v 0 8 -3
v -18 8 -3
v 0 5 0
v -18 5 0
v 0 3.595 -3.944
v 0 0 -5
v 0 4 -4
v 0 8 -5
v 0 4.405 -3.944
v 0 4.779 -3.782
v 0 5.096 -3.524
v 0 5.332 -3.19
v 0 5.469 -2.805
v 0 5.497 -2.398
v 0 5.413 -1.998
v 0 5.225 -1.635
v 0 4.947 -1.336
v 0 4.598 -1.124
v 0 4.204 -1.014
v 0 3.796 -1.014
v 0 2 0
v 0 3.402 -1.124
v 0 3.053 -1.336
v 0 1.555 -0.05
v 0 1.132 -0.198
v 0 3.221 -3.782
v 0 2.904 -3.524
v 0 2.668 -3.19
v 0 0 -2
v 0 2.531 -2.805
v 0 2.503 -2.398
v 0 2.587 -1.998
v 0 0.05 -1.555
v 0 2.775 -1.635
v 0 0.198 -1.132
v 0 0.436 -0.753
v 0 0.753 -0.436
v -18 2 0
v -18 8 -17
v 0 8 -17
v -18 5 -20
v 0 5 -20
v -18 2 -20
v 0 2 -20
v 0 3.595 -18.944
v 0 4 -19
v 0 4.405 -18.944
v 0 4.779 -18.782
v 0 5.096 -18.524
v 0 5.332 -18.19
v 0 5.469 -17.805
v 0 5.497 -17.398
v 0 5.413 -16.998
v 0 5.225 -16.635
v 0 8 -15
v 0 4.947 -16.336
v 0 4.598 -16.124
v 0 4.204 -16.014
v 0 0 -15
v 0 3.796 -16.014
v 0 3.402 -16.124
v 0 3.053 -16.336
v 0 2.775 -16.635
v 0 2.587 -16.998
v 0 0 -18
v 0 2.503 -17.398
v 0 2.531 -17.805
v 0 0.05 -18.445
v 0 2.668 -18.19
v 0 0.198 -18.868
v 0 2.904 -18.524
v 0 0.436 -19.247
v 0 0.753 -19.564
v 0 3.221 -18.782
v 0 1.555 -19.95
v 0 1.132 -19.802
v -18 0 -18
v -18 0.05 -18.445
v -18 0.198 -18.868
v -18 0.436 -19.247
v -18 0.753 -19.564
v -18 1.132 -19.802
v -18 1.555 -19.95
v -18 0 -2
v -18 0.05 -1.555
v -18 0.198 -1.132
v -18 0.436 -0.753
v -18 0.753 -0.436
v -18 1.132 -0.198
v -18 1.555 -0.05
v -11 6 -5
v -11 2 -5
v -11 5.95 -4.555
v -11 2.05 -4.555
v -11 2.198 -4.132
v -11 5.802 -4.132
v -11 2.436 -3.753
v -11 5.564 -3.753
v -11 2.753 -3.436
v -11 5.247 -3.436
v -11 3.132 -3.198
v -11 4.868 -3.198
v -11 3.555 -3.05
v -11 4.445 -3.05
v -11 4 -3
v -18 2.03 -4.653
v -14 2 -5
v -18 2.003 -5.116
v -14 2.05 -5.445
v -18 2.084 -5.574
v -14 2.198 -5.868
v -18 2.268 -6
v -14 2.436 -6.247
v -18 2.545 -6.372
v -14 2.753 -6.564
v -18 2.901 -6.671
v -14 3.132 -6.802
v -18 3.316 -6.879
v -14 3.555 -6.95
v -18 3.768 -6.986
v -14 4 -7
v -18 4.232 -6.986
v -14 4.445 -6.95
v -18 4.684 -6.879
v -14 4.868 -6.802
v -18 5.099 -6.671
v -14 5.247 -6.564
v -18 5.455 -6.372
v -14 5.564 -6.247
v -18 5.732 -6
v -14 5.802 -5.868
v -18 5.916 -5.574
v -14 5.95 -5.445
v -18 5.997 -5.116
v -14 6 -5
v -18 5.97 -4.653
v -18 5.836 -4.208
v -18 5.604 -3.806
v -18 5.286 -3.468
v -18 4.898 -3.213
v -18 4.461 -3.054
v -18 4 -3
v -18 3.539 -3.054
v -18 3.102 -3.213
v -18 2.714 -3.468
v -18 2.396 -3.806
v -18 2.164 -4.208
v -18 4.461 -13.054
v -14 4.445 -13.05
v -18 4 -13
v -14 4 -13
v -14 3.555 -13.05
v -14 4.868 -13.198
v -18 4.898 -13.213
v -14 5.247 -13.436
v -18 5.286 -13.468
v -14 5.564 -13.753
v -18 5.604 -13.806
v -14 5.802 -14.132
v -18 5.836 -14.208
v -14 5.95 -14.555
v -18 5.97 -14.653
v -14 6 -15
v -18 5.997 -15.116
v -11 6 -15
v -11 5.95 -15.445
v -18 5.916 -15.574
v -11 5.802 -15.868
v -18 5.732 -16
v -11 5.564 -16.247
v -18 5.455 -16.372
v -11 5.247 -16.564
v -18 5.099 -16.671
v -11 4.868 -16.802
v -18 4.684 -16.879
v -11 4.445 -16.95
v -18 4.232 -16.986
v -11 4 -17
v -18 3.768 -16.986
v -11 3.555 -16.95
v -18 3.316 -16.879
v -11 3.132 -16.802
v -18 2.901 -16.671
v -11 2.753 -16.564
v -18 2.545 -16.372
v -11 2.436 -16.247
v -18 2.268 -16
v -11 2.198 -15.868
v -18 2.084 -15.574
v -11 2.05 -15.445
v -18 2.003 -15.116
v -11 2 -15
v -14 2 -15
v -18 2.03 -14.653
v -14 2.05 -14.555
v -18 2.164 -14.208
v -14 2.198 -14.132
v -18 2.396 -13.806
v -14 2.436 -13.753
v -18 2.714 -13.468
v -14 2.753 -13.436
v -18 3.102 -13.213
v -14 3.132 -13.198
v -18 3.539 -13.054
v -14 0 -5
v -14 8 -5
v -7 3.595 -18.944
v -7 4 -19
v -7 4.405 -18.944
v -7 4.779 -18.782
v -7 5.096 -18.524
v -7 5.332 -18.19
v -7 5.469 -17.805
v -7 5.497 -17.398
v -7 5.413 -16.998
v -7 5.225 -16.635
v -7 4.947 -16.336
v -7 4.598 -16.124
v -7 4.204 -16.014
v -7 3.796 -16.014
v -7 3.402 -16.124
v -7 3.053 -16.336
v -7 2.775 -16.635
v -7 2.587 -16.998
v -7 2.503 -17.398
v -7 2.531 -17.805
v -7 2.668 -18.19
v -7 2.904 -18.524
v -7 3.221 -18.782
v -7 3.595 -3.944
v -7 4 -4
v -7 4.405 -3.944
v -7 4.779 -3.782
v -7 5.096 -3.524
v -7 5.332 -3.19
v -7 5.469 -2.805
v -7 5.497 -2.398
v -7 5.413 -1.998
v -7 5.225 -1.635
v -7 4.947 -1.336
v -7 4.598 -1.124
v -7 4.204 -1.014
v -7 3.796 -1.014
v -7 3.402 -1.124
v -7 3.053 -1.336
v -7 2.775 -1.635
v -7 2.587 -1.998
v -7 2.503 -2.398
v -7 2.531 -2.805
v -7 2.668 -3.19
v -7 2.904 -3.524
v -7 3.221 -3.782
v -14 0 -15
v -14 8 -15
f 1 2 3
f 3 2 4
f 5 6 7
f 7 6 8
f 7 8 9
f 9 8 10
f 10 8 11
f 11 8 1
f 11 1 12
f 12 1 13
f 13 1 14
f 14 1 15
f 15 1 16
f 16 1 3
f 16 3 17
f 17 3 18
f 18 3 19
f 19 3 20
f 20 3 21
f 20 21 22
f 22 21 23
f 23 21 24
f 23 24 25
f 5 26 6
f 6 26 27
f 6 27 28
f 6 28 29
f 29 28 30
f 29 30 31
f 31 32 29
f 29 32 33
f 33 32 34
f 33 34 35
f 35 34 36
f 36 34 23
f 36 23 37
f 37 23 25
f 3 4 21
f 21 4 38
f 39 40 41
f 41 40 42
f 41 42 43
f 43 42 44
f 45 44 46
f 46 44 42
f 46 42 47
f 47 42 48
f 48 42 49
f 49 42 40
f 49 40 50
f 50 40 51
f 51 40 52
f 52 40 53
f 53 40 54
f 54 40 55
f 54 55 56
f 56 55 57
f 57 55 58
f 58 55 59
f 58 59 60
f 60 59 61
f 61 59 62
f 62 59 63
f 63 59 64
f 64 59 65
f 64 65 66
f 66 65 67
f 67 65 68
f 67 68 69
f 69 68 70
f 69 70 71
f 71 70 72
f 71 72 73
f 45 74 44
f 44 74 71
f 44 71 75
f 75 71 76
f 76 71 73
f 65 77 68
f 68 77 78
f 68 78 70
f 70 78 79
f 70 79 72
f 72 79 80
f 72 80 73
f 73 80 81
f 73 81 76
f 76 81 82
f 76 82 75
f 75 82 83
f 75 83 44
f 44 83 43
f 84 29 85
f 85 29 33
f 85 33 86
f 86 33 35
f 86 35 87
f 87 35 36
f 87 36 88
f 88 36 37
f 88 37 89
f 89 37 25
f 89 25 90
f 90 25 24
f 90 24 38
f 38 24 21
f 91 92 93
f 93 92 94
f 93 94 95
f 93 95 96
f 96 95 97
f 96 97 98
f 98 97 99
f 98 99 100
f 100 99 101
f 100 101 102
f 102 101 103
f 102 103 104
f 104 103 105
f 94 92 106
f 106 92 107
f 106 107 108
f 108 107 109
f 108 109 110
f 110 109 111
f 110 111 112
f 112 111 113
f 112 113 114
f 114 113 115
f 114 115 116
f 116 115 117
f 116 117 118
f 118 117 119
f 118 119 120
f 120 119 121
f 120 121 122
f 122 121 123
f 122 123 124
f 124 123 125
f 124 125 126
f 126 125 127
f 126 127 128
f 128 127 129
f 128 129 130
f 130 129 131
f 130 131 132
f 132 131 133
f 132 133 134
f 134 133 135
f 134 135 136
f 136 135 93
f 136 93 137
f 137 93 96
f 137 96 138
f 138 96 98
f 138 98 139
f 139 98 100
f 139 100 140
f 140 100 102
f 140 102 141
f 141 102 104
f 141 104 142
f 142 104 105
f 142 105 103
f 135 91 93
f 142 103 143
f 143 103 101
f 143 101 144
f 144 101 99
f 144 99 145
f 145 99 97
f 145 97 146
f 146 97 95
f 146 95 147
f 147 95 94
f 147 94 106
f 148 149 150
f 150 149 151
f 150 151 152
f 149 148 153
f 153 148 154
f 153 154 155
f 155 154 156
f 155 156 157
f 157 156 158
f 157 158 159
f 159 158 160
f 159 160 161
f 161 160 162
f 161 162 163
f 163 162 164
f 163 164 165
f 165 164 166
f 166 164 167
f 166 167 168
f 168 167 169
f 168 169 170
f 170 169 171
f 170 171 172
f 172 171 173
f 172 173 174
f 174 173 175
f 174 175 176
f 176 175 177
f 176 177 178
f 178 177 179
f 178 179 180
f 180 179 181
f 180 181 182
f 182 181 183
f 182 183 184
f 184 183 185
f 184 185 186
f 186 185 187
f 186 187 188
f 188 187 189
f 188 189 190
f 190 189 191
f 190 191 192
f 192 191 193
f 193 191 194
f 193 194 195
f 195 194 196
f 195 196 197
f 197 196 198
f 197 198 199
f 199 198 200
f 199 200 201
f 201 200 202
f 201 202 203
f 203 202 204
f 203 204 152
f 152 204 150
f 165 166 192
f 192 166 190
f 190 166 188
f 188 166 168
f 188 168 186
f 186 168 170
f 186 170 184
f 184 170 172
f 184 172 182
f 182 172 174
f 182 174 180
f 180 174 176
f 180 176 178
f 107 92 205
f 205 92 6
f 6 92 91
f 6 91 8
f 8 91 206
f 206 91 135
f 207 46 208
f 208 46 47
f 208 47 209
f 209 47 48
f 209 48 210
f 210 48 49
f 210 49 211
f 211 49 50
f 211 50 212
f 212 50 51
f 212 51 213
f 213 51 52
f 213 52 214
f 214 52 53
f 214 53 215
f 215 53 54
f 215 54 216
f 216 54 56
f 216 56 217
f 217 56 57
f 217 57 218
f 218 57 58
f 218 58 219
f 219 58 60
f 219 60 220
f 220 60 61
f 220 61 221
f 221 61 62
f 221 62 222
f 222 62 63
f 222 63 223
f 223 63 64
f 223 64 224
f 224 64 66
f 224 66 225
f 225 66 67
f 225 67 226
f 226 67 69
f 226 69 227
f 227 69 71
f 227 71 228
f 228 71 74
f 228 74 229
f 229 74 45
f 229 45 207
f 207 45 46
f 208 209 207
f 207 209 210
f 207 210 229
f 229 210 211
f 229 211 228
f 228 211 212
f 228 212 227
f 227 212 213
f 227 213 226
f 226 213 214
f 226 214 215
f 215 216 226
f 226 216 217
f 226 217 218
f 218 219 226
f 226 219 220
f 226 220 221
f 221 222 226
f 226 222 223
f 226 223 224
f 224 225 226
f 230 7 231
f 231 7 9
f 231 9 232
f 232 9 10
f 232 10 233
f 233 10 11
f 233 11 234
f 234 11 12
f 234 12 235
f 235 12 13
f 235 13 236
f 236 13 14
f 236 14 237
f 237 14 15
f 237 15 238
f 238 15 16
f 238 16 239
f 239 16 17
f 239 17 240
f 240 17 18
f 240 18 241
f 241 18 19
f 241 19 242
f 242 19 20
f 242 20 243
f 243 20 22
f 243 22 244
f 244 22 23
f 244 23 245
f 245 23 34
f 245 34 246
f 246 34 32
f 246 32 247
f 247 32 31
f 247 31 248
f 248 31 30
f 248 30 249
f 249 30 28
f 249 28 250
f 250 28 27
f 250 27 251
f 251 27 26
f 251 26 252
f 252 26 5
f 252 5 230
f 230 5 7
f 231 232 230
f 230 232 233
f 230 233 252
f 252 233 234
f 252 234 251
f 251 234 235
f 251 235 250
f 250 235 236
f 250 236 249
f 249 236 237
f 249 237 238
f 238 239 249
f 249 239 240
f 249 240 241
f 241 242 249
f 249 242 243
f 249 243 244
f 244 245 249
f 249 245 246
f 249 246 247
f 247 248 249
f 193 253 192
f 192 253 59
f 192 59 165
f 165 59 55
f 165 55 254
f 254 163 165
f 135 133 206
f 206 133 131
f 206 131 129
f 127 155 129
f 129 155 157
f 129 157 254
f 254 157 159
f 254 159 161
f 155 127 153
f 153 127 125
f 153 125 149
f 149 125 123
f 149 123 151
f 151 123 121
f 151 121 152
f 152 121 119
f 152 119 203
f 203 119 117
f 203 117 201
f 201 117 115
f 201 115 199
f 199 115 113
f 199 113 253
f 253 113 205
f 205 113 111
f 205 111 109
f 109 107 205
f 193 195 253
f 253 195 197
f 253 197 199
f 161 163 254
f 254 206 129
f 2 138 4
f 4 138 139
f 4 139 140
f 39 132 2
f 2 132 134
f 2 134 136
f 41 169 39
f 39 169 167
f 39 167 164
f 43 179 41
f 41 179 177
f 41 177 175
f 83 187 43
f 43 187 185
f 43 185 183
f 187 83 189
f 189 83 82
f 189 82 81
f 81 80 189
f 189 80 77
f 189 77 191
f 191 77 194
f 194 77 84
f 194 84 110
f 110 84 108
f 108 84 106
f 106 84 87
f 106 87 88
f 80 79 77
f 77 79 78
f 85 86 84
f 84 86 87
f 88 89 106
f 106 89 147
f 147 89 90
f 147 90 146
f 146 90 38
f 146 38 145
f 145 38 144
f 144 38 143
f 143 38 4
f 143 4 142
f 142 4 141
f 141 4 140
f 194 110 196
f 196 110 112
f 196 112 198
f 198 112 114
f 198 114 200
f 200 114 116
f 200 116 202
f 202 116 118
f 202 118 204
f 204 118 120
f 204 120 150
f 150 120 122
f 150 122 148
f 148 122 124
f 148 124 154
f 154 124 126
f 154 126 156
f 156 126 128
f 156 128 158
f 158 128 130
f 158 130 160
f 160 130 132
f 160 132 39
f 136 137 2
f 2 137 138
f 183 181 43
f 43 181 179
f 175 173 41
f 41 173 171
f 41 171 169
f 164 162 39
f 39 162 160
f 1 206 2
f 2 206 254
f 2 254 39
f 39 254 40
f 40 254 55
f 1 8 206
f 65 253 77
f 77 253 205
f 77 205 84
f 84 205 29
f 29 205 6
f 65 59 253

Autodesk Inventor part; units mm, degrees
ref_plane "YZ Plane" through (0, 0, 0) normal (1, 0, 0) x (0, 1, 0)
ref_plane "XZ Plane" through (0, 0, 0) normal (0, 1, 0) x (-1, 0, 0)
ref_plane "XY Plane" through (0, 0, 0) normal (0, 0, 1) x (1, 0, 0)
sketch "Sketch1" plane through (0, 0, 0) normal (0, 1, 0) x (-1, 0, 0)
  line L0 (0, 0) -> (18, 0)
  line L1 (18, 0) -> (18, -20)
  line L2 (18, -20) -> (0, -20)
  line L3 (0, -20) -> (0, 0)
  line L4 (0, 0) -> (0, -5)
  line L5 (0, -5) -> (14, -5)
  line L6 (14, -5) -> (14, -15)
  line L7 (14, -15) -> (0, -15)
  line L8 (0, -15) -> (0, -5)
  dimension "d0" = 18
  dimension "d1" = 20
  dimension "d2" = 5
  dimension "d3" = 14
  dimension "d4" = 10
extrude "Extrusion1" add sketch "Sketch1" along normal blind 8 contours L0 L1 L2 L3 L7 L6 L5
sketch "Sketch2" plane through (0, 0, 0) normal (1, 0, 0) x (0, 0, -1)
  line L0 (20, 8) -> (0, 8) projected
  line L1 (0, 8) -> (2.5, 8)
  line L2 (2.5, 8) -> (2.5, 4)
  line L3 (2.5, 4) -> (0, 4)
  line L4 (0, 4) -> (0, 8)
  line L5 (20, 0) -> (20, 8) projected
  line L6 (20, 8) -> (17.5, 8)
  line L7 (17.5, 8) -> (17.5, 4)
  line L8 (17.5, 4) -> (20, 4)
  line L9 (20, 4) -> (20, 8)
  circle A0 centre (2.5, 4) radius 1.5
  circle A1 centre (17.5, 4) radius 1.5
  point P0 (0, 0)
  dimension "d7" = 2.5
  dimension "d8" = 4
  dimension "d9" = 2.5
  dimension "d10" = 4
  dimension "d11" = 3
  dimension "d12" = 3
extrude "Extrusion2" cut sketch "Sketch2" against normal blind 7 contours A1 L8 L7 | L7 L8 A1 | A0 L3 L2 | L2 L3 A0
sketch "Sketch3" plane through (-18, 0, -20) normal (-1, 0, 0) x (0, 0, 1)
  line L0 (0, 0) -> (0, 8) projected
  line L1 (0, 0) -> (5, 0)
  line L2 (5, 0) -> (5, 4)
  line L3 (5, 4) -> (0, 4)
  line L4 (0, 4) -> (0, 0)
  line L5 (5, 4) -> (15, 4)
  circle A0 centre (5, 4) radius 2
  circle A1 centre (15, 4) radius 2
  point P0 (20, 0)
  dimension "d15" = 5
  dimension "d16" = 4
  dimension "d17" = 10
  dimension "d18" = 4
  dimension "d19" = 4
extrude "Extrusion3" cut sketch "Sketch3" against normal blind 7 contours A1 | A0 L5 L3 | L3 L2 A0 | L2 L5 A0
fillet "Fillet1" radius 2 2 edges at (-9, 0, 0) (-9, 0, -20)
chamfer "Chamfer1" distance 3 angle 45 2 edges at (-9, 8, -20) (-9, 8, 0)
properties part number "servo_support_4"
